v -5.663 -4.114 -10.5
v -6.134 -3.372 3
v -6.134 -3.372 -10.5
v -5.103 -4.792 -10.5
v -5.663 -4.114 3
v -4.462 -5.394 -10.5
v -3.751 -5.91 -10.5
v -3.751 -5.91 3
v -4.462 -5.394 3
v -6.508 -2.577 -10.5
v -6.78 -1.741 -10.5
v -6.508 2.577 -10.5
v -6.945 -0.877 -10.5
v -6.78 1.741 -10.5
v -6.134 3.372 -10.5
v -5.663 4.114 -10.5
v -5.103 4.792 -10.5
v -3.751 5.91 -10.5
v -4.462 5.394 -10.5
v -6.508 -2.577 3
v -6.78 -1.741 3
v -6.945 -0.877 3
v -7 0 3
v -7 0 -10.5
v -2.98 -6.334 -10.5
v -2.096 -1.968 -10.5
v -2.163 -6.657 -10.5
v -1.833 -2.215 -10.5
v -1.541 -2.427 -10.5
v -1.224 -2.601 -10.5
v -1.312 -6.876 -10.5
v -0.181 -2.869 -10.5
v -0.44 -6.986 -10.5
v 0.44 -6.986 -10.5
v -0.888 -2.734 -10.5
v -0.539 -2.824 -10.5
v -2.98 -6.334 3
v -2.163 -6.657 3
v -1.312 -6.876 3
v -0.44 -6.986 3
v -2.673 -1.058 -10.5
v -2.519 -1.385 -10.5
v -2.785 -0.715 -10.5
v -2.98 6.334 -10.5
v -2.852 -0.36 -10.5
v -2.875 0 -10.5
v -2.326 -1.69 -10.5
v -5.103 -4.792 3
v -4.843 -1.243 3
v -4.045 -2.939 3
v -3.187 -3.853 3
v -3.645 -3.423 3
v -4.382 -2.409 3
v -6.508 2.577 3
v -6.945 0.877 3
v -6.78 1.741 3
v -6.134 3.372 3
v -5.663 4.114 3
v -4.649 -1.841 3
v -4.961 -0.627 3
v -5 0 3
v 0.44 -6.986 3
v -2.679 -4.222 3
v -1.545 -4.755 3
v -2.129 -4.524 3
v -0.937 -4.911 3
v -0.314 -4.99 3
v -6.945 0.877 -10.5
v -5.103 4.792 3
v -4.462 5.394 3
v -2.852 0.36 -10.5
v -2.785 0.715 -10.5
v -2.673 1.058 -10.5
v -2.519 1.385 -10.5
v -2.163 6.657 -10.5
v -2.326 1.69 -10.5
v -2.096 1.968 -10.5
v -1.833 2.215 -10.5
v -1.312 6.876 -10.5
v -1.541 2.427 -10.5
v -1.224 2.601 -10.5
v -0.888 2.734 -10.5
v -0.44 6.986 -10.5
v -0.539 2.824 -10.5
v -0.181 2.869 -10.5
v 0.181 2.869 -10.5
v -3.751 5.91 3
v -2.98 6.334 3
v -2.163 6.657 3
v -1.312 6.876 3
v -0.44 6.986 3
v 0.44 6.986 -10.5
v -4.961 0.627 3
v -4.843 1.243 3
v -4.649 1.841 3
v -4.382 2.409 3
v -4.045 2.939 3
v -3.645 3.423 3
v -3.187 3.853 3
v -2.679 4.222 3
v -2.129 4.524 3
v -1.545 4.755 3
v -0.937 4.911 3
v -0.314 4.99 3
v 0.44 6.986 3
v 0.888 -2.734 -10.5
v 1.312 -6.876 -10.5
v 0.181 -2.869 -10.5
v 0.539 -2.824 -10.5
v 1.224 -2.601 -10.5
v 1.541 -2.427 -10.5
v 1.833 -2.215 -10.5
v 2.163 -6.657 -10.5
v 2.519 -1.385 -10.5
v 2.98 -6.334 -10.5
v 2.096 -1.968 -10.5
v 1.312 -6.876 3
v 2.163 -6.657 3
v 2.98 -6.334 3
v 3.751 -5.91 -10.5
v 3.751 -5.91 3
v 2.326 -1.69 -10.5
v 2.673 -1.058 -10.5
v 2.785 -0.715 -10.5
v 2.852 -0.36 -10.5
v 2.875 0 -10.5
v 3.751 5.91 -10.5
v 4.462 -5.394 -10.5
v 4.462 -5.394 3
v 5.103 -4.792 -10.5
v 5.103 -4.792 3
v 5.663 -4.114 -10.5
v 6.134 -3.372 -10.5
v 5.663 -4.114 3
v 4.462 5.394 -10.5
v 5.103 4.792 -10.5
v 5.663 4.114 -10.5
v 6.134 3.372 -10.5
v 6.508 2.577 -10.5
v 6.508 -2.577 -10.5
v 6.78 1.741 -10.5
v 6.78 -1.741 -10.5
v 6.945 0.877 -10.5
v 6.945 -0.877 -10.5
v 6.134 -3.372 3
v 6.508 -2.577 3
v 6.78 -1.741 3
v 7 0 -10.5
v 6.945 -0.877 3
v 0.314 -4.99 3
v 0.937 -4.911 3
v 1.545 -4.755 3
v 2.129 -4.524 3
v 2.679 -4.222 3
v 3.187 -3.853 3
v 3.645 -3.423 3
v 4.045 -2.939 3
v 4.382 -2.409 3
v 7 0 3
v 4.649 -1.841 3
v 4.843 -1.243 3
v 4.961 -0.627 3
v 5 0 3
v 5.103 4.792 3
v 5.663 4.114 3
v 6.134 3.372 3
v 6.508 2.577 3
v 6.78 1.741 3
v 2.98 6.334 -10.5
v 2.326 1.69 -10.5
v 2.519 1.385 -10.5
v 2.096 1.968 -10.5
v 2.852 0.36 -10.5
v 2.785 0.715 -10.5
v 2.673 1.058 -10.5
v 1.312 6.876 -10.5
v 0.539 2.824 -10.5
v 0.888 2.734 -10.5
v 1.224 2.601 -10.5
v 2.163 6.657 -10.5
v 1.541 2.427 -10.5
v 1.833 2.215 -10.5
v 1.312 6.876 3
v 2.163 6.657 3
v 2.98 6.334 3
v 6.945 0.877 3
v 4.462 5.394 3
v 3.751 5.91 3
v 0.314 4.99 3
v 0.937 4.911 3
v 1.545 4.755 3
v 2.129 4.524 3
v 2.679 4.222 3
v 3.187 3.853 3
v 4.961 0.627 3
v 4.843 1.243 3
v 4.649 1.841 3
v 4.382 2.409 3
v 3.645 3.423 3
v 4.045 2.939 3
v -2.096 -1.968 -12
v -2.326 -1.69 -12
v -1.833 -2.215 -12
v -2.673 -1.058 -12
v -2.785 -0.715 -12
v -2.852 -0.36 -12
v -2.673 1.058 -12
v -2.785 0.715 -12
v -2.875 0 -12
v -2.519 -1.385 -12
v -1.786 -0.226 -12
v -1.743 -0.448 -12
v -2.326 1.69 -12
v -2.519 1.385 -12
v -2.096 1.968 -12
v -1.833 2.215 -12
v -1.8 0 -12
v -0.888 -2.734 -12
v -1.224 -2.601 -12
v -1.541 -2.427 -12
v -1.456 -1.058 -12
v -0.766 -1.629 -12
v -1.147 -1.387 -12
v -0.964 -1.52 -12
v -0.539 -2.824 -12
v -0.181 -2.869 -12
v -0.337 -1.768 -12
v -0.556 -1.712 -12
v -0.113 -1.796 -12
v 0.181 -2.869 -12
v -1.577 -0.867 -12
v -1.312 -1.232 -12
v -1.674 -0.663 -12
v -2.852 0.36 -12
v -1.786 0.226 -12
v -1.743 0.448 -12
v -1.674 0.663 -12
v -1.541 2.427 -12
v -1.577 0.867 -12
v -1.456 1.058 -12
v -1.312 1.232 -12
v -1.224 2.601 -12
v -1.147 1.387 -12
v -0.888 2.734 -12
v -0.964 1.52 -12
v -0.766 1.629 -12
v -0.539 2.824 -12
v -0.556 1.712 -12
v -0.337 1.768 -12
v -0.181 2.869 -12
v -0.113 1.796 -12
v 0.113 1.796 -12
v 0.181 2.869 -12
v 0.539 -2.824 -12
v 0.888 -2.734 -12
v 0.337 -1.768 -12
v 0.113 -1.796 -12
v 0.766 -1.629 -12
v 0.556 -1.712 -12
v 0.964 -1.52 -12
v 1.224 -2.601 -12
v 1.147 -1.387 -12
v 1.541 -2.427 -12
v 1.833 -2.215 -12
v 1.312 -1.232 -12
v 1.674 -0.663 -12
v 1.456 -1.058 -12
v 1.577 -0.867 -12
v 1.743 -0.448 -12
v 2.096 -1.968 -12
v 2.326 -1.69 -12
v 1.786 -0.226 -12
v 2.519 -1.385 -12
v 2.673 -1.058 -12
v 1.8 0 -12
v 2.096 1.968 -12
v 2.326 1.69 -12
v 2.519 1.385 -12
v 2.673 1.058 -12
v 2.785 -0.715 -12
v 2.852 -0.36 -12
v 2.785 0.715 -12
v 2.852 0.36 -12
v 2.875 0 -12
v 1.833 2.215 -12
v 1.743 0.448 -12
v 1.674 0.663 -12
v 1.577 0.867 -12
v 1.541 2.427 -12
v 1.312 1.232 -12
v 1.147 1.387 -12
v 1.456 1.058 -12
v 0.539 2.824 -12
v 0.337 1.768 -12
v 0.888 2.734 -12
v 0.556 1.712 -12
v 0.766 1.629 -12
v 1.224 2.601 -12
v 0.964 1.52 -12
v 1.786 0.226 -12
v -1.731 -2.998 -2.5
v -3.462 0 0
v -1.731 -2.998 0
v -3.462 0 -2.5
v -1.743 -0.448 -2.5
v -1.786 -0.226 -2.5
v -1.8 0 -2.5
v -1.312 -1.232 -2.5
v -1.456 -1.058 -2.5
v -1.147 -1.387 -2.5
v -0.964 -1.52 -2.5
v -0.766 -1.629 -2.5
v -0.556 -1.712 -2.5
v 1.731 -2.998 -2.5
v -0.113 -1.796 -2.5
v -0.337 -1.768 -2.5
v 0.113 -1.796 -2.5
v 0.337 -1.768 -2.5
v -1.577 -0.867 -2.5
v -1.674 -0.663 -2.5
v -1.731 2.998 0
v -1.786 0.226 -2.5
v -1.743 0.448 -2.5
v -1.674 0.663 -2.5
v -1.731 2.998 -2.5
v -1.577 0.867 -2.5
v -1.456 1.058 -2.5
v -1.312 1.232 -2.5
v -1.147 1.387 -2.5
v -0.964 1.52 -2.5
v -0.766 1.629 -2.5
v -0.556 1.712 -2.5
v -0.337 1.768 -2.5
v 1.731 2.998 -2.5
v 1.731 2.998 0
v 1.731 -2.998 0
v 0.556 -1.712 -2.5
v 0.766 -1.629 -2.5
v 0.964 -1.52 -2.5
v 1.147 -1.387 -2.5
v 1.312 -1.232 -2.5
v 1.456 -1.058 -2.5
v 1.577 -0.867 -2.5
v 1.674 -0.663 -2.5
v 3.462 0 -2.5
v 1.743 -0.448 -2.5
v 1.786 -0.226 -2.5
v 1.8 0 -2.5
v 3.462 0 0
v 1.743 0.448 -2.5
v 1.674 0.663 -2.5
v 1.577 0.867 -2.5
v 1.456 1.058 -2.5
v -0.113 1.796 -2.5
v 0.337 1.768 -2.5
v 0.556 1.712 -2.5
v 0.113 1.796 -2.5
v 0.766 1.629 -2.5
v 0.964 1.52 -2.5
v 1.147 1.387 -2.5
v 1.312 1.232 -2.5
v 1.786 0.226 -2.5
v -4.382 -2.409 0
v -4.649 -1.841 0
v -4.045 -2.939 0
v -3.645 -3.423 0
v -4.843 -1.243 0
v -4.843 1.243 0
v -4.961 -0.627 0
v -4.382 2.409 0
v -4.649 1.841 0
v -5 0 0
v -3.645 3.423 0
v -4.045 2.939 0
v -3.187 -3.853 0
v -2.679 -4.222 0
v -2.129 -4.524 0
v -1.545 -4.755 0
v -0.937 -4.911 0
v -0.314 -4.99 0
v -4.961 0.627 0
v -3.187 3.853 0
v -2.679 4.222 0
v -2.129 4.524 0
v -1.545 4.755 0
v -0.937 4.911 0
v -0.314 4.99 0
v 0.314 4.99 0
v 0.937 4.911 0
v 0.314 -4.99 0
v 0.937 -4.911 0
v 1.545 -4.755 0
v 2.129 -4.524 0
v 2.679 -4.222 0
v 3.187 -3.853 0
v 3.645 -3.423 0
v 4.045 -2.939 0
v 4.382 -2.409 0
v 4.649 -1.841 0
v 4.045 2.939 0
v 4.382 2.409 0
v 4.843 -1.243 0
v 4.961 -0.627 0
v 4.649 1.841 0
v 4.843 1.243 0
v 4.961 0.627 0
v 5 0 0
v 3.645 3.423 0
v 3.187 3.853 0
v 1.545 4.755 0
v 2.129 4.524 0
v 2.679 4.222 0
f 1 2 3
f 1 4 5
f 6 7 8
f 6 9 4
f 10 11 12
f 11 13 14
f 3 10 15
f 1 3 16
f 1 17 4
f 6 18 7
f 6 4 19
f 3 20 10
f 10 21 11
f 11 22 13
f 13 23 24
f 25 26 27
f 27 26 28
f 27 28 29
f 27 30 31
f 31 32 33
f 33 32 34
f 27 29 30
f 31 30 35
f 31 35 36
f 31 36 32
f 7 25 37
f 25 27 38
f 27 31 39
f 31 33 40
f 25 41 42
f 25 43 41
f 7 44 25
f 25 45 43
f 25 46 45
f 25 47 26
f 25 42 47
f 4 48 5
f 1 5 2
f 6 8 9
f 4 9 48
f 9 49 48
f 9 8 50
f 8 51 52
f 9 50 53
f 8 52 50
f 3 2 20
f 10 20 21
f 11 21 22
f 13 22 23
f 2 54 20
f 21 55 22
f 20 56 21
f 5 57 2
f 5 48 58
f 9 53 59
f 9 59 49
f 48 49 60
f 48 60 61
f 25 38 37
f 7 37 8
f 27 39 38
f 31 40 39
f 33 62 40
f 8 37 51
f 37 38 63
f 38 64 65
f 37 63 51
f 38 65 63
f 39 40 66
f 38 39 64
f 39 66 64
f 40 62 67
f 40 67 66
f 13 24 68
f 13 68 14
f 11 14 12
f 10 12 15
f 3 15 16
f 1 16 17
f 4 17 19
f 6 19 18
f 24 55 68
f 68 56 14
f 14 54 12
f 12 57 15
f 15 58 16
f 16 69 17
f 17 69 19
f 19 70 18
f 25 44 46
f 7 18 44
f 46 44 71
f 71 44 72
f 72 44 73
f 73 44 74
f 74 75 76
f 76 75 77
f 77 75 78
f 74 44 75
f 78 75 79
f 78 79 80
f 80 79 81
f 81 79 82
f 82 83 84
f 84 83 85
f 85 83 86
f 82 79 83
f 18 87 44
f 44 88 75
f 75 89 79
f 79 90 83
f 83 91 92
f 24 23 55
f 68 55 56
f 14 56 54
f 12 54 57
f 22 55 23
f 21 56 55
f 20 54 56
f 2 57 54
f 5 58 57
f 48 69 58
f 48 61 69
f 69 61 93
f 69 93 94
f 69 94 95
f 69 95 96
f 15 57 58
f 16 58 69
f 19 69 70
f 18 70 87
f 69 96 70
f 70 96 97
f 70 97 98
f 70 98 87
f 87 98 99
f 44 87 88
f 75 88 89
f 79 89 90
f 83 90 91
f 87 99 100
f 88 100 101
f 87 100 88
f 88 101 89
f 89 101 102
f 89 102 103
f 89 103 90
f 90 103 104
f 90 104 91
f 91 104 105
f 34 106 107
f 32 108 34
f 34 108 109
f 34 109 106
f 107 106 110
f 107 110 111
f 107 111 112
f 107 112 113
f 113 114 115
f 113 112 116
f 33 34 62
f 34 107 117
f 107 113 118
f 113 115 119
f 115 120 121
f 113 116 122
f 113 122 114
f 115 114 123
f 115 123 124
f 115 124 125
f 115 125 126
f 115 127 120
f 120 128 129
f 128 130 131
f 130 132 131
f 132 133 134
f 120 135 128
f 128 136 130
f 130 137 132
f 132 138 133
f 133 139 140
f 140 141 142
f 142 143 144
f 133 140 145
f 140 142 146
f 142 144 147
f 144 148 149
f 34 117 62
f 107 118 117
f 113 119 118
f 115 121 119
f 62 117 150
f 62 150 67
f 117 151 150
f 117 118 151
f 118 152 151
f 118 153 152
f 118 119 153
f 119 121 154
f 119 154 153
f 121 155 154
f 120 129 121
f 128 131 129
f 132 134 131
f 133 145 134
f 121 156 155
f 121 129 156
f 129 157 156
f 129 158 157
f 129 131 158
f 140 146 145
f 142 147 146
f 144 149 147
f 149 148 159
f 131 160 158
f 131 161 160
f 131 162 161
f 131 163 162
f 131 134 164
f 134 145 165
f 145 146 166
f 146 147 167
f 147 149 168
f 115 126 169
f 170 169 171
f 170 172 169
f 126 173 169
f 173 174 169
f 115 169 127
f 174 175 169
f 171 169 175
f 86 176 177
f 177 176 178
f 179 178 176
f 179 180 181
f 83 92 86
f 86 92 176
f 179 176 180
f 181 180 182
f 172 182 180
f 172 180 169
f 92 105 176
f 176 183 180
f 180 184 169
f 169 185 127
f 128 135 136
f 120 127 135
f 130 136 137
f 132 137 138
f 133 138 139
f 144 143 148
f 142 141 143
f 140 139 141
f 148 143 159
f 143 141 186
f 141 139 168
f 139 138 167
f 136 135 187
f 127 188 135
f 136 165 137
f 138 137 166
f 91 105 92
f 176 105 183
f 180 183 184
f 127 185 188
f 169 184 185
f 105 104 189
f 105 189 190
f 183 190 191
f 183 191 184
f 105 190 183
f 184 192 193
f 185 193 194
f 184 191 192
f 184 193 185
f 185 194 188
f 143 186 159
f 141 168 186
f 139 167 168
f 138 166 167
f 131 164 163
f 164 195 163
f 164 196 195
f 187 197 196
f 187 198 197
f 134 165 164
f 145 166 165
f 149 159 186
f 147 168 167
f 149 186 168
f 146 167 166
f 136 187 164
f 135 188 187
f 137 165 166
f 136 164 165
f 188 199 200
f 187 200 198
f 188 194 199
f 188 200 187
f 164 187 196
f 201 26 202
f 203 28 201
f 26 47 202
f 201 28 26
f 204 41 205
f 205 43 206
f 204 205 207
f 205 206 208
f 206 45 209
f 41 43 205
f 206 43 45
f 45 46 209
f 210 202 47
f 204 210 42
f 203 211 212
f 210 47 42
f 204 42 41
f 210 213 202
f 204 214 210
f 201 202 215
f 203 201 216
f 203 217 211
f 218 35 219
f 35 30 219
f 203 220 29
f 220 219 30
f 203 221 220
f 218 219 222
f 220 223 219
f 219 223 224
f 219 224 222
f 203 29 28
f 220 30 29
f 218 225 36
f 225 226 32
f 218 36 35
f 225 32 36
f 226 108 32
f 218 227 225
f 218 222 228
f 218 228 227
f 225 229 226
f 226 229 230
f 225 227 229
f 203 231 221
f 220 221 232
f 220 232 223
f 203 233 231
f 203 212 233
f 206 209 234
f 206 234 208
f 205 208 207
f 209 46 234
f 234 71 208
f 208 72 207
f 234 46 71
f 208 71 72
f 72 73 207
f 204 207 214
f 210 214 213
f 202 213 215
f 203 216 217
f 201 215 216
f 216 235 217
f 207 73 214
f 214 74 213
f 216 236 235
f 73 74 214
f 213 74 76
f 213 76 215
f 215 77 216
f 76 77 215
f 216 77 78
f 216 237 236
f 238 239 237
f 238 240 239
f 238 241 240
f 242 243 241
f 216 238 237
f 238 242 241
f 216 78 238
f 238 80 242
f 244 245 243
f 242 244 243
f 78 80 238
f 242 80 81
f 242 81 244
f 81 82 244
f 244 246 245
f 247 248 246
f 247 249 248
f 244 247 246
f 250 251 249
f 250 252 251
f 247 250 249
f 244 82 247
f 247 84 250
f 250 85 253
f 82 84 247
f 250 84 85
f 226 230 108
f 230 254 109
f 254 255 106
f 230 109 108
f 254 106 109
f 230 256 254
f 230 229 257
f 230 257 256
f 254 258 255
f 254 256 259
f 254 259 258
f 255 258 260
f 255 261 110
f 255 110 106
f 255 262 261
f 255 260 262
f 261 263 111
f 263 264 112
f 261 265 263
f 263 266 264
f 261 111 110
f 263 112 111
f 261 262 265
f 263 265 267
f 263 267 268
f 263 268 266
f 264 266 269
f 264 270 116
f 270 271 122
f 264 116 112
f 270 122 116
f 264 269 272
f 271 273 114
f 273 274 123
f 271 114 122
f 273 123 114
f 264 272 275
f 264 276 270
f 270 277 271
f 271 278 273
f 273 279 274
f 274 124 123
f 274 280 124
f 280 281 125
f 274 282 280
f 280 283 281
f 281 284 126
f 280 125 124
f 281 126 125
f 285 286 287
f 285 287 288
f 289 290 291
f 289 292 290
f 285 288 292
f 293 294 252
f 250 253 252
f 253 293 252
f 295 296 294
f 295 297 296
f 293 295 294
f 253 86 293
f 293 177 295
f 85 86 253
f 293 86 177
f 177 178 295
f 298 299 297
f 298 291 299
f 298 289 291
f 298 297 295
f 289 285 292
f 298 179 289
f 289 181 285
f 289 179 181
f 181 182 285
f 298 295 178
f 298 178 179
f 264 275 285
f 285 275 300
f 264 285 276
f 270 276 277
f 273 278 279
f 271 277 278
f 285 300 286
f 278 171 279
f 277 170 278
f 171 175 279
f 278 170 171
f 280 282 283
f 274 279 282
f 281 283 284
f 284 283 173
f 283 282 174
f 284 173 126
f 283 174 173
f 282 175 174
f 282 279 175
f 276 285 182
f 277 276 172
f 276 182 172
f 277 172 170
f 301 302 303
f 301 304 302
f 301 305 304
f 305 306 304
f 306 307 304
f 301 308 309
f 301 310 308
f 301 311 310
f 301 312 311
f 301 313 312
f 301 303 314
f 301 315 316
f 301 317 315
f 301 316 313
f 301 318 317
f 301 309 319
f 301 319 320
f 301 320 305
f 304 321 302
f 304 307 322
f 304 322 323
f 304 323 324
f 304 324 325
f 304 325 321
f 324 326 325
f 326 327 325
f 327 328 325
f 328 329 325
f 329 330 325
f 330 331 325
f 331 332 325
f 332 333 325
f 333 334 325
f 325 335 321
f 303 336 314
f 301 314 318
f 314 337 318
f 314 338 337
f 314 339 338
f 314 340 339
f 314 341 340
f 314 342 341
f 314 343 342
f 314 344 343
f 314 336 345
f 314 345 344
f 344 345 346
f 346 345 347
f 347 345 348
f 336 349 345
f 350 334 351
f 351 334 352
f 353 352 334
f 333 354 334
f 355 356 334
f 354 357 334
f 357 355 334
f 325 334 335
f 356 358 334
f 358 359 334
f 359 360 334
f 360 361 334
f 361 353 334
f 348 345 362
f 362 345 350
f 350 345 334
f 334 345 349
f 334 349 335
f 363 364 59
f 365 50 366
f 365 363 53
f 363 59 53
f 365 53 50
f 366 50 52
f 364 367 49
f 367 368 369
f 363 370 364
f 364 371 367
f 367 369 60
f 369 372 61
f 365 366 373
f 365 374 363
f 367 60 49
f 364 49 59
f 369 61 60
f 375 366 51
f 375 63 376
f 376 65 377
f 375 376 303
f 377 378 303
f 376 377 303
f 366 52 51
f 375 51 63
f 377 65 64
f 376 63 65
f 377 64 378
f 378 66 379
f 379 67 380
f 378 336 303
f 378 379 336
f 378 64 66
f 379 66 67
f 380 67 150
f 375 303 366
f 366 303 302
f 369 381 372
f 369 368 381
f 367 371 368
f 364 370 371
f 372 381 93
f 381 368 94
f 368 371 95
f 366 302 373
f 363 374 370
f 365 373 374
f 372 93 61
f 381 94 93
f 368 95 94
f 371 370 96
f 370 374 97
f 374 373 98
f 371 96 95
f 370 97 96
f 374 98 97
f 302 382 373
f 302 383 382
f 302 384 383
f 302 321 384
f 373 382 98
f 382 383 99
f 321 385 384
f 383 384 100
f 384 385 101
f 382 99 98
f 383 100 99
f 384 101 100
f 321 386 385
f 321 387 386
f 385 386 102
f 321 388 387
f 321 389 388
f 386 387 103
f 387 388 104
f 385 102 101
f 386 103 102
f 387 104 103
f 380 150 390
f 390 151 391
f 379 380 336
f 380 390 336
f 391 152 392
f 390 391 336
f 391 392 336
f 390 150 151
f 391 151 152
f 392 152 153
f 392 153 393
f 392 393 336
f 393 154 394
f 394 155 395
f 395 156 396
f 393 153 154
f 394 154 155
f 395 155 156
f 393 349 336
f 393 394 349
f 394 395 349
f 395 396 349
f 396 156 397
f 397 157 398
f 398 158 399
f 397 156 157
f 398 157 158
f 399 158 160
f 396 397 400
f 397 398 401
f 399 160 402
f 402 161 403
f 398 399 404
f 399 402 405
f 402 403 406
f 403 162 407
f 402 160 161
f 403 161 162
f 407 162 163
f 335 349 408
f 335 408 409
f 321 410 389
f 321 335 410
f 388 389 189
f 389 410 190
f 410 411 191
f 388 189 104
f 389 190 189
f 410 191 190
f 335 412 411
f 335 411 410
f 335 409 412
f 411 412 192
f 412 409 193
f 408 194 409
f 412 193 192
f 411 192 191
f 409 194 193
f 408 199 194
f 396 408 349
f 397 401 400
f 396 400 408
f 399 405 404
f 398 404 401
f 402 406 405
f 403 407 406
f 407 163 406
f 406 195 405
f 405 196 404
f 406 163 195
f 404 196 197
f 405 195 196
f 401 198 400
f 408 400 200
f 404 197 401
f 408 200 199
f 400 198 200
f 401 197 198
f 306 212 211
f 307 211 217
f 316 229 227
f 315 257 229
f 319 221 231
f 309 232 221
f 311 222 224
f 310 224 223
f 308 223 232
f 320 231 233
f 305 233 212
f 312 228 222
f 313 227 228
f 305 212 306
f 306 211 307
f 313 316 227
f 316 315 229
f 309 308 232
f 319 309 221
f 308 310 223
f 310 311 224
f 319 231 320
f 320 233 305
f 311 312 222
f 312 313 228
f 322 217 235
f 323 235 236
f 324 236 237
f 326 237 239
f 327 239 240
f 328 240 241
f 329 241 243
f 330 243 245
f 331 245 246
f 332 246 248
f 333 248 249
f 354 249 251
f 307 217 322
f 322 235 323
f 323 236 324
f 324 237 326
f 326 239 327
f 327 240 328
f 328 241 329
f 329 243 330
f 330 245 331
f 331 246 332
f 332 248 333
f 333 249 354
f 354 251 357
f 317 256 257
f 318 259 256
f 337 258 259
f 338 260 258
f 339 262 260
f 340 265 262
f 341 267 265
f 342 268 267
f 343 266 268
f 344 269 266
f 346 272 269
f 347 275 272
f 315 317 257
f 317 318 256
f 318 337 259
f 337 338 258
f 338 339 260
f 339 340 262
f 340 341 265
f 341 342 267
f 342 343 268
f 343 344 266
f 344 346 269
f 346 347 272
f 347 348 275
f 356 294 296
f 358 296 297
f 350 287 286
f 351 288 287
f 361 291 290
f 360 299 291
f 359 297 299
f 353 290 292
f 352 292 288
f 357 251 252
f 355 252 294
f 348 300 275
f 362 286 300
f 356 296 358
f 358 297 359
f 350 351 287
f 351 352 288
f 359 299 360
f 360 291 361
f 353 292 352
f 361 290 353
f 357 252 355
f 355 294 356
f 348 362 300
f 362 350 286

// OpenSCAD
$fn = 50;


difference() {
	union() {
		translate(v = [0, 0, -10.5000000000]) {
			cylinder(h = 13.5000000000, r = 7.0000000000);
		}
		#translate(v = [0, 0, -12.0000000000]) {
			cylinder(h = 12, r = 2.8750000000);
		}
	}
	union() {
		translate(v = [0, 0, 0]) {
			rotate(a = [0, 0, 0]) {
				difference() {
					union() {
						translate(v = [0, 0, -2.5000000000]) {
							linear_extrude(height = 2.5000000000) {
								polygon(points = [[3.4620000000, 0.0000000000], [1.7310000000, 2.9981799479], [-1.7310000000, 2.9981799479], [-3.4620000000, 0.0000000000], [-1.7310000000, -2.9981799479], [1.7310000000, -2.9981799479]]);
							}
						}
					}
					union();
				}
			}
		}
		#cylinder(h = 3, r = 5.0000000000);
		#translate(v = [0, 0, -100.0000000000]) {
			cylinder(h = 200, r = 1.8000000000);
		}
	}
}
